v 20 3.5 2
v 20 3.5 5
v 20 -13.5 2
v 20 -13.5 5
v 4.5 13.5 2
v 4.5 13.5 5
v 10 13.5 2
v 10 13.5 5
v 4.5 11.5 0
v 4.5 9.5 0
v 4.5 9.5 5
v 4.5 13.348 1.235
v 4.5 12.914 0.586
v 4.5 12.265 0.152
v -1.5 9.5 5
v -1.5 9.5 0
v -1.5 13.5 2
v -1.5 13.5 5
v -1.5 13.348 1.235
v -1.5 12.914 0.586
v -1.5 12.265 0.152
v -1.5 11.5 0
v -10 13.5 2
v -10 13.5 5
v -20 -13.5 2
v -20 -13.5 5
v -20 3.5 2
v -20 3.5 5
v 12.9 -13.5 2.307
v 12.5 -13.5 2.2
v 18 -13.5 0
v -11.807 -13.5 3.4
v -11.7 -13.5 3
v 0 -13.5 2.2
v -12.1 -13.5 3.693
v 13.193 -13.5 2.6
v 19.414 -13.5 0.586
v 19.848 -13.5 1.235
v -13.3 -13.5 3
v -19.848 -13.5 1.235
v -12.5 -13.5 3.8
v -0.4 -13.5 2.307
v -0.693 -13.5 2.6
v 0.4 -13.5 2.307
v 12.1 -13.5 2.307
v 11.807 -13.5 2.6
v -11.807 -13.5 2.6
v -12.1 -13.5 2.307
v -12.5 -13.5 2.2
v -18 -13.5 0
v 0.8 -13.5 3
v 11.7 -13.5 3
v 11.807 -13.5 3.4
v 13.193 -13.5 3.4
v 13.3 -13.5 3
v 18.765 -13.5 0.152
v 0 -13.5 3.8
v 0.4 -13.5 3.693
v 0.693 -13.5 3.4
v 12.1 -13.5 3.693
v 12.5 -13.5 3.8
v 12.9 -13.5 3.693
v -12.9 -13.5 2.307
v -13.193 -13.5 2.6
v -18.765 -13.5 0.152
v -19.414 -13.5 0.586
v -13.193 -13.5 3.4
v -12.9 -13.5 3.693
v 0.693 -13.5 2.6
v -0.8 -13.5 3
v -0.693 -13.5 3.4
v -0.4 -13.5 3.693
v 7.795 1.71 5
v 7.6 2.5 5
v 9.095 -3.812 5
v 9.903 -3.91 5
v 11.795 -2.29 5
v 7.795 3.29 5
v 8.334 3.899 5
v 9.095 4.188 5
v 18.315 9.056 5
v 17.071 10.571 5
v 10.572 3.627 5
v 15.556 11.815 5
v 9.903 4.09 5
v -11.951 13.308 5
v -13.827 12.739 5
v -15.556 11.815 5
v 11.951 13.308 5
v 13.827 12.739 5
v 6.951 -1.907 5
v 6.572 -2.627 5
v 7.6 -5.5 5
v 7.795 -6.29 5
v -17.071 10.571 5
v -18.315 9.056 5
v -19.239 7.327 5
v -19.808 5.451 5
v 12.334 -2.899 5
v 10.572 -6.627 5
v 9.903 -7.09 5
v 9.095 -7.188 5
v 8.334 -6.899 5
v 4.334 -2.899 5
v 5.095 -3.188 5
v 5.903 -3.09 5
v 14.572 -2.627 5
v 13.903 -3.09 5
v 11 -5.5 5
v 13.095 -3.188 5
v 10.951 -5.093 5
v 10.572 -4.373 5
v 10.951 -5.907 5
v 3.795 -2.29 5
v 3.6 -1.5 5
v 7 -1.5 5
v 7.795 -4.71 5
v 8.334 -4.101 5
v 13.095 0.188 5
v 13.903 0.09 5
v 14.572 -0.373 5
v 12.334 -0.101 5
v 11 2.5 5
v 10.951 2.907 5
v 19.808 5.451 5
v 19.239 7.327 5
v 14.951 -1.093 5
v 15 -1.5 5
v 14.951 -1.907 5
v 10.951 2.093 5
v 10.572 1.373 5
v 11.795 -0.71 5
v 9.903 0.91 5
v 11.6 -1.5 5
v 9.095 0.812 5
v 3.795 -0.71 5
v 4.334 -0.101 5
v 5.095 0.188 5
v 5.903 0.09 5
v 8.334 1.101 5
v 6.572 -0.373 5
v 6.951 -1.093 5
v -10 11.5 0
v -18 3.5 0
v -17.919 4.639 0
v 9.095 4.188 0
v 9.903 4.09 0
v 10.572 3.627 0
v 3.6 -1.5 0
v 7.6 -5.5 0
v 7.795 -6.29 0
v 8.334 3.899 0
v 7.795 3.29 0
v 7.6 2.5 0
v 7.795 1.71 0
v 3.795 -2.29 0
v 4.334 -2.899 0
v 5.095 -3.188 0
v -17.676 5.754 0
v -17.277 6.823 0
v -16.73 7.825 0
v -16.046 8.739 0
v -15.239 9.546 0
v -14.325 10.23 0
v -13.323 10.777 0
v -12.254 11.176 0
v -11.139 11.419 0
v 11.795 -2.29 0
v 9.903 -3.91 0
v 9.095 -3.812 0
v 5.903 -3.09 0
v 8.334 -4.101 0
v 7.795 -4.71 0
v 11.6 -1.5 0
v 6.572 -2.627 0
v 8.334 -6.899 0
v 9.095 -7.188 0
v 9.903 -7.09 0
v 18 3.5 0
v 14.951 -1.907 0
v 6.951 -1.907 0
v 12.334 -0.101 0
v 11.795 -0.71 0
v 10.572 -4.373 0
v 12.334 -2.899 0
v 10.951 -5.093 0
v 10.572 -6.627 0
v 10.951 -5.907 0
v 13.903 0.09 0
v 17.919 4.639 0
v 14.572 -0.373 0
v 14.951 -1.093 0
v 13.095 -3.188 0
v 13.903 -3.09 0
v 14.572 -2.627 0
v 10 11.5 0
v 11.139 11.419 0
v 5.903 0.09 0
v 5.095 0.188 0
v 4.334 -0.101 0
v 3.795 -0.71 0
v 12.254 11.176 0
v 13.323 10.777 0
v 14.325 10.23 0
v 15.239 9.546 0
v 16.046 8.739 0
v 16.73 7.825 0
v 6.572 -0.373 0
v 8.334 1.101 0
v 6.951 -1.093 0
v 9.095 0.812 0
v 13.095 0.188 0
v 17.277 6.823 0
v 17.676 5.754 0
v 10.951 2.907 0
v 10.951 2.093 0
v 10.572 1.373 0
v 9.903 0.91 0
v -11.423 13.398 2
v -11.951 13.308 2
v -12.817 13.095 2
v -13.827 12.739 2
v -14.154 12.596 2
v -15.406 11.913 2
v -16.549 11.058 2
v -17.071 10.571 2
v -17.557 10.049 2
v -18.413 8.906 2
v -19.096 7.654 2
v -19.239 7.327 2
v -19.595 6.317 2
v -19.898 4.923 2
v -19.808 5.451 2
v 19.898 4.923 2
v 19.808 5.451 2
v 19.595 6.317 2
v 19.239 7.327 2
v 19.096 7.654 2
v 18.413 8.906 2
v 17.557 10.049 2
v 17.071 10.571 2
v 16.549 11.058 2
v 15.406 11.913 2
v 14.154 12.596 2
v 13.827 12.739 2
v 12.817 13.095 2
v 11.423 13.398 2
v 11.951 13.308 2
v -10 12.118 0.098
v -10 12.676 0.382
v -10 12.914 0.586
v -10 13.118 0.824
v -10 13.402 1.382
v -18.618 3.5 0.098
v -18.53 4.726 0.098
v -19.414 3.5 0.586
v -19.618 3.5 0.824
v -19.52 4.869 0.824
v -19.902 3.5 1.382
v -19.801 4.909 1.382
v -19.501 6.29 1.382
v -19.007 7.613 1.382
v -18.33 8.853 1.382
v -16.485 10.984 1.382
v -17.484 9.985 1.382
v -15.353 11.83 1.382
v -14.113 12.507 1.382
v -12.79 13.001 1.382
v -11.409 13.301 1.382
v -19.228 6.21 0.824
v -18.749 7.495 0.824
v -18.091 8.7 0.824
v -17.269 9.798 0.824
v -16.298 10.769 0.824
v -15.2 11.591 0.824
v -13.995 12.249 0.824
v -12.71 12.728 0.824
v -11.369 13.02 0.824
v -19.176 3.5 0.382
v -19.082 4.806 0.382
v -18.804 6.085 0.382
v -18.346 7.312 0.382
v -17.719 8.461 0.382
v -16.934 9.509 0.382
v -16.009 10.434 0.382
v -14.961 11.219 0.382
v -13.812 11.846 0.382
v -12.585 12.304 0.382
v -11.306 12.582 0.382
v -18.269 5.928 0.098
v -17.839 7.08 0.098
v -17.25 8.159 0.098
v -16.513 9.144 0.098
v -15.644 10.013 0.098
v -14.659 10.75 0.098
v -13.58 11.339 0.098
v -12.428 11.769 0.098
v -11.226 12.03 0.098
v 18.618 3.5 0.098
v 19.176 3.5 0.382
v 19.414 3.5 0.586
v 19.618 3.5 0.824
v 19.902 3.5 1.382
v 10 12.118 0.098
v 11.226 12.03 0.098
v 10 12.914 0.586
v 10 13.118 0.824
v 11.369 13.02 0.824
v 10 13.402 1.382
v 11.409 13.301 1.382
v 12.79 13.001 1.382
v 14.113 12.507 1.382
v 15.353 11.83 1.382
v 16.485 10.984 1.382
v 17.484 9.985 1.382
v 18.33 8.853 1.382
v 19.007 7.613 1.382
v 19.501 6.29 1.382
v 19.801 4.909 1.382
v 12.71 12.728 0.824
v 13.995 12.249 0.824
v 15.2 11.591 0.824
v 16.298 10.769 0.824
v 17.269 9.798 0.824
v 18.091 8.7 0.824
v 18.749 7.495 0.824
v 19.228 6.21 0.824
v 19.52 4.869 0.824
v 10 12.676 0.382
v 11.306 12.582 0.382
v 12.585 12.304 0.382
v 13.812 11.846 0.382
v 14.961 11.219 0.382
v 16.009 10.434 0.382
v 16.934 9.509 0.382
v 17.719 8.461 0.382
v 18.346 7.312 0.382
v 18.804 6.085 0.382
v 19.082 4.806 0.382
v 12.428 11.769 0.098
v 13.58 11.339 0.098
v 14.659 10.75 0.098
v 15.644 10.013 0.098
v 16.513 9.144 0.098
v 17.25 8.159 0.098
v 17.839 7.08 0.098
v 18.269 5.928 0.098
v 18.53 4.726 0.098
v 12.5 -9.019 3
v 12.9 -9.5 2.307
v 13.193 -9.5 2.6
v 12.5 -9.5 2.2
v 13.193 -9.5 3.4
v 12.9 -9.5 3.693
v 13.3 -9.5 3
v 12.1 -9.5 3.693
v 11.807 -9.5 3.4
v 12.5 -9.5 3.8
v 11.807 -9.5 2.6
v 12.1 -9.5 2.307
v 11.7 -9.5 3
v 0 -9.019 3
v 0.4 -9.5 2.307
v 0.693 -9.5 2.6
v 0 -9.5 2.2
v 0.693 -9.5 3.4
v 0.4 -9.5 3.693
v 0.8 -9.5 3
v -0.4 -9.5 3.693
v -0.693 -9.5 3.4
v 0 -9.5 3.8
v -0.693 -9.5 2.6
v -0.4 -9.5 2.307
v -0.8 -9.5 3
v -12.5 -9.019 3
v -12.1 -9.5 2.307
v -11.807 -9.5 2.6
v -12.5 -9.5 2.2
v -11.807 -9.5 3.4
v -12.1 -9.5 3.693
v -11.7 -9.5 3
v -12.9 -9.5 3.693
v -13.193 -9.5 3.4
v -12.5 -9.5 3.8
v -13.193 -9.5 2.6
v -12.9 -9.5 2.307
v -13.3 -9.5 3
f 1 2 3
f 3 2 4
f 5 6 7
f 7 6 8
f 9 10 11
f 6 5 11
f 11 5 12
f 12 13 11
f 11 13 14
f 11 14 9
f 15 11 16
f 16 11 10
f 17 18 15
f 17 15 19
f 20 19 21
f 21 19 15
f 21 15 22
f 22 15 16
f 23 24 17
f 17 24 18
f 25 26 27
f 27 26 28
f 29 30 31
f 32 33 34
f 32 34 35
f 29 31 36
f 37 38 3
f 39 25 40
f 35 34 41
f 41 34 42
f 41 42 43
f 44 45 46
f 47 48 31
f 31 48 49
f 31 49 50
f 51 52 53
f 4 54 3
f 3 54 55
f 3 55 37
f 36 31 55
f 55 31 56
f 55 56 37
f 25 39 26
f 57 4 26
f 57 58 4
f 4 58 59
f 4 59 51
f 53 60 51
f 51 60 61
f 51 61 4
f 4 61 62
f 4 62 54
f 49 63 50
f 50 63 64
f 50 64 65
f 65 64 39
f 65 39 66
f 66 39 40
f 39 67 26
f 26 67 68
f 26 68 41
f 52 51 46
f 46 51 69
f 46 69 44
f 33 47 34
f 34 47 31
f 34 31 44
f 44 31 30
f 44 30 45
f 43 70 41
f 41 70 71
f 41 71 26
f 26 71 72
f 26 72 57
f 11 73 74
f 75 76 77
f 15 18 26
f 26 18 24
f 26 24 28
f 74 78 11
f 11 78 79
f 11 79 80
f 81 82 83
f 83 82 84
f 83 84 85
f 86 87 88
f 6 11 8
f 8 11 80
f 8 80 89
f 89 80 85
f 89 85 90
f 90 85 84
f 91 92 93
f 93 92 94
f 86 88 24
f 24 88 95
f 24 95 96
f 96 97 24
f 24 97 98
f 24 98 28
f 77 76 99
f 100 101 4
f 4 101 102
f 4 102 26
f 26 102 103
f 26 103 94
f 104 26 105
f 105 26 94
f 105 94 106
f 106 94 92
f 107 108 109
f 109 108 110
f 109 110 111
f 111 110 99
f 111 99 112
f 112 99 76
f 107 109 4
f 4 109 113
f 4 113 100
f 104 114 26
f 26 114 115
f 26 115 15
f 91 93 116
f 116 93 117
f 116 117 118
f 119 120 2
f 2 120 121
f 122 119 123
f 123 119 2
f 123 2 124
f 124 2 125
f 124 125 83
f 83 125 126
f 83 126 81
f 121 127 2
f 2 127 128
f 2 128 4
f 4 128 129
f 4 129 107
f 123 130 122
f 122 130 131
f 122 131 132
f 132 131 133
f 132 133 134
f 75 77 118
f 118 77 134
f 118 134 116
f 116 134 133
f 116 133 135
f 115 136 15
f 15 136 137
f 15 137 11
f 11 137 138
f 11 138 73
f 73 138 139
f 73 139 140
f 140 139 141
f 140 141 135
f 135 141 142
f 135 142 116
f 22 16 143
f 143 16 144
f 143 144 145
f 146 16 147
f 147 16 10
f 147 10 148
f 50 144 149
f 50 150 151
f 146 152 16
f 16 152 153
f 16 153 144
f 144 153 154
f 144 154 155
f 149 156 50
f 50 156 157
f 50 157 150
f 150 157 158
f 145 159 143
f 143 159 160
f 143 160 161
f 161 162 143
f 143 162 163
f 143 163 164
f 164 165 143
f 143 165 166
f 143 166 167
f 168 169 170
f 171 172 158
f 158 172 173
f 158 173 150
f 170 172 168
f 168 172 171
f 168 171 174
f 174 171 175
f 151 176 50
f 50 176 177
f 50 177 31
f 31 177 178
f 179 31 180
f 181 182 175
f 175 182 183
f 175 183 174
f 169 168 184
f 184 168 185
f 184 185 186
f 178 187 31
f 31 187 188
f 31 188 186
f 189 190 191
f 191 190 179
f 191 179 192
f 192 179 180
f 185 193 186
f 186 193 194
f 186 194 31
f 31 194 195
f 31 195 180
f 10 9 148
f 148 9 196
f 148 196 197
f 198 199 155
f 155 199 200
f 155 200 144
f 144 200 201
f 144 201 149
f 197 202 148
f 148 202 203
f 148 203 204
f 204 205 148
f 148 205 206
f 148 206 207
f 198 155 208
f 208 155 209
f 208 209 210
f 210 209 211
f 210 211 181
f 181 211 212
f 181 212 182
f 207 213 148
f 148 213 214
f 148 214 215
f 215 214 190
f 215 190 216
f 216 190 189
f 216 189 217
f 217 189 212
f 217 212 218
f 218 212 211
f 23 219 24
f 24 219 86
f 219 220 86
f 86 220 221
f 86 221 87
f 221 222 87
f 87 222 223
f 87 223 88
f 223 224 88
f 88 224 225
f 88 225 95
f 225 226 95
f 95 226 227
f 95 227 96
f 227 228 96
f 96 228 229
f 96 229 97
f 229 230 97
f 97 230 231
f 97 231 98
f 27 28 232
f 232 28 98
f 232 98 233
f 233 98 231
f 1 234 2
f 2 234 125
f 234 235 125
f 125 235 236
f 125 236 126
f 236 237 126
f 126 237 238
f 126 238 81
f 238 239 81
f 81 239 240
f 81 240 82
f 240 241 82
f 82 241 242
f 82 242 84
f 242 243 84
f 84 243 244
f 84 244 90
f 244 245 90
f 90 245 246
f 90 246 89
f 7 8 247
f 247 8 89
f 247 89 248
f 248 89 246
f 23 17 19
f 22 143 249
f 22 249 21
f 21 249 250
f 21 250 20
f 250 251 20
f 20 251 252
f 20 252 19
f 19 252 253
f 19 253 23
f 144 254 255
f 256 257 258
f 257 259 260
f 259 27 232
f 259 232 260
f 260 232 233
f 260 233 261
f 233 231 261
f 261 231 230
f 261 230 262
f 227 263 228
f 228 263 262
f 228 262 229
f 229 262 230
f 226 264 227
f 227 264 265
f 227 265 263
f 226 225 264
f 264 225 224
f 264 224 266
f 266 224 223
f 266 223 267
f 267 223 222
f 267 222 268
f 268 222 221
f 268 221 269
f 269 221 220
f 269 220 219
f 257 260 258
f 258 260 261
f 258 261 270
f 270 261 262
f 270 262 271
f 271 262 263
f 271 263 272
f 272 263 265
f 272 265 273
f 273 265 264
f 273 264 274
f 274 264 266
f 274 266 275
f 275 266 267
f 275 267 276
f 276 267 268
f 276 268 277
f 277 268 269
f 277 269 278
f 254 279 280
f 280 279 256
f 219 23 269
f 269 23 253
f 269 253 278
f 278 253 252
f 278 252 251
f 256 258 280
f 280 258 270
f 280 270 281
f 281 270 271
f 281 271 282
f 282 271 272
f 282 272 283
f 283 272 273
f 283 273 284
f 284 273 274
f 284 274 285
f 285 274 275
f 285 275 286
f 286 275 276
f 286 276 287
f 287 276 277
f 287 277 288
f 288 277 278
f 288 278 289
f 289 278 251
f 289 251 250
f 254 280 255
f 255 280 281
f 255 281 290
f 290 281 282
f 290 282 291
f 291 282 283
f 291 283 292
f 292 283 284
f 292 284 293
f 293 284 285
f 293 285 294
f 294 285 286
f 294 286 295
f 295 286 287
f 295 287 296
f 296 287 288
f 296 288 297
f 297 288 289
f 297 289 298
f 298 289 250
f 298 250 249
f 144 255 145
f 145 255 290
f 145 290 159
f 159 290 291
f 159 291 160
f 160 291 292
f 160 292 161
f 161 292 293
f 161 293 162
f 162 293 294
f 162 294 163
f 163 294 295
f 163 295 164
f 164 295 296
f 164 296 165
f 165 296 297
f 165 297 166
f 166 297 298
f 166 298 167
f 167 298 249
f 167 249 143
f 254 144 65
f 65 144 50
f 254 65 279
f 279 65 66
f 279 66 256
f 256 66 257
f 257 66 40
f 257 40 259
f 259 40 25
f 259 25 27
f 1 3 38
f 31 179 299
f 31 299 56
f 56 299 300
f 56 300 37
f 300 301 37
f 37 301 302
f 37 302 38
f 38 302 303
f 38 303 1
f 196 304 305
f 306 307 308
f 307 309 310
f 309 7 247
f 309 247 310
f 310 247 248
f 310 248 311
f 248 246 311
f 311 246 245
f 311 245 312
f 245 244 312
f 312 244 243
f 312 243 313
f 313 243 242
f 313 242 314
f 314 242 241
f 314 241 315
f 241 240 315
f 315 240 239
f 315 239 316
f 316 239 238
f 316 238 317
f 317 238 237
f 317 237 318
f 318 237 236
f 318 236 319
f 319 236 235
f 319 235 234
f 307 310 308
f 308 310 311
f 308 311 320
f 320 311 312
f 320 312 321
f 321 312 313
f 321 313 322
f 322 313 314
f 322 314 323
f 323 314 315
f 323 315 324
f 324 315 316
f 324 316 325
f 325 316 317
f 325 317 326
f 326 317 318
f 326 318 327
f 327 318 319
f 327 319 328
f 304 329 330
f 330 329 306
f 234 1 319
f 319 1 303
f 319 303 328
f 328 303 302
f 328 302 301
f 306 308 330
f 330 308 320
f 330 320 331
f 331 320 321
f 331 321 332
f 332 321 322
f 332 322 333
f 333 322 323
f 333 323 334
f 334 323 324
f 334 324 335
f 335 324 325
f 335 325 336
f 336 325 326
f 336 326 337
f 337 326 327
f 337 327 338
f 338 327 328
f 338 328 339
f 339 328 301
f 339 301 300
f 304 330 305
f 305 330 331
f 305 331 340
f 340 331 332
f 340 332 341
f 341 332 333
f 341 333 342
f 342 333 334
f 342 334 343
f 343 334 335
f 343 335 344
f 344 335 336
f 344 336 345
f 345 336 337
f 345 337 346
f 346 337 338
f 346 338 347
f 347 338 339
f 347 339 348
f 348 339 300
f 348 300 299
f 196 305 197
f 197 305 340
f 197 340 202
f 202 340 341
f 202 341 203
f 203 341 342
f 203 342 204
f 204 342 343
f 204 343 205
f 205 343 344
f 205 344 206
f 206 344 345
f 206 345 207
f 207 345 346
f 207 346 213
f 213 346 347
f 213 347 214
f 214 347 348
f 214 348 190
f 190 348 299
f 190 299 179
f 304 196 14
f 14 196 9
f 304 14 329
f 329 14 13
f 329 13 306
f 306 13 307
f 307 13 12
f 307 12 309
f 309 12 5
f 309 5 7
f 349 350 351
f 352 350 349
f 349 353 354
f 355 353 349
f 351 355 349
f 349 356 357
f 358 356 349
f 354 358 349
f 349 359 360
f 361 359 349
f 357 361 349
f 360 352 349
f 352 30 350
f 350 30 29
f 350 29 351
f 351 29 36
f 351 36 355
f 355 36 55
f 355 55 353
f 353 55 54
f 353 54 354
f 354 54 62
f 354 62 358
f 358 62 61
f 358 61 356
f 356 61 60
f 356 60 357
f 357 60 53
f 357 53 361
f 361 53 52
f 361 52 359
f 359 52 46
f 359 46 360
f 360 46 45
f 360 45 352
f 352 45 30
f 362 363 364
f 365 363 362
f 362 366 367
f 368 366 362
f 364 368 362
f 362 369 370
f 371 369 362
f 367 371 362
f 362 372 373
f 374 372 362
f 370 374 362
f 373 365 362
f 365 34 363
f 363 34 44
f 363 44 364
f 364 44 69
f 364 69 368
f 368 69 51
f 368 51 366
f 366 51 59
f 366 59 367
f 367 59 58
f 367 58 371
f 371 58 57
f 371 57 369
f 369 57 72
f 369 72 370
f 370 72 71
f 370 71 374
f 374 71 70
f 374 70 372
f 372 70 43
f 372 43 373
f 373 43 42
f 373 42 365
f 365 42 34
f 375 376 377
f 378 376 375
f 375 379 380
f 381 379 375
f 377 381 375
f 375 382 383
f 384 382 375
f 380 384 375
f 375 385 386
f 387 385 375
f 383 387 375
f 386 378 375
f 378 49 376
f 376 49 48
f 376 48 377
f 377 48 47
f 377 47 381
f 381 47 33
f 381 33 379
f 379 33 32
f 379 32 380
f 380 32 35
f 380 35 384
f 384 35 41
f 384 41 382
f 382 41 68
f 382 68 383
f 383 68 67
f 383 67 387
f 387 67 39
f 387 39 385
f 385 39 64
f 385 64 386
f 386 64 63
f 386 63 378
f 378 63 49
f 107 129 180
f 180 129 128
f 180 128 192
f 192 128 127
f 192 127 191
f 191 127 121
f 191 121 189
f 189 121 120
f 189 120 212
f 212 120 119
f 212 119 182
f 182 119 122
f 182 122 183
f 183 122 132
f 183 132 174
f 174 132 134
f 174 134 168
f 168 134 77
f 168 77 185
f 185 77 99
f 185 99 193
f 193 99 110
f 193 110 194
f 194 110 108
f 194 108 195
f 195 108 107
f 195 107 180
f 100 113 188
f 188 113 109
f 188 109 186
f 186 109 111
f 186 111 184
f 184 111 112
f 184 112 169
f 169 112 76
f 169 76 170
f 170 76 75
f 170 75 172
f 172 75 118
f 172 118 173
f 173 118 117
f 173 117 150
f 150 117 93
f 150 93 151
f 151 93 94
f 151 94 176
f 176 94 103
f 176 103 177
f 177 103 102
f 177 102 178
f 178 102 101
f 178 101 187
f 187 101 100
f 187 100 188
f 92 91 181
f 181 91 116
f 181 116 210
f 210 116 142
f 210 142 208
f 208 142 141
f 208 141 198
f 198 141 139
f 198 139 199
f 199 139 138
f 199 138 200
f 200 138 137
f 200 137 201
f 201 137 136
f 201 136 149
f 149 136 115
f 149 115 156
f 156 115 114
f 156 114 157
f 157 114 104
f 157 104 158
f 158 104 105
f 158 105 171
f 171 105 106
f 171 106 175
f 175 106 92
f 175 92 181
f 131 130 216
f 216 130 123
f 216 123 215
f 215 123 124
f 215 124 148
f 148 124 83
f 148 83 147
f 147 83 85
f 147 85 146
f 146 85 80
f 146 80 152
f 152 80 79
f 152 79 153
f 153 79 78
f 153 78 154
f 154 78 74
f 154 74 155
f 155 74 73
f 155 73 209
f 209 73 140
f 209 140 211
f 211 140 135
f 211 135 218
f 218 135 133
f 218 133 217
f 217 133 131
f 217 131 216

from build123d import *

# Parameters (mm, degrees)
EXTRUDE_1_DEPTH        = 5
FILLET_1_R             = 10
FILLET_2_R             = 2
HOLE_WIZARD_M2_1_D     = 1.6
HOLE_WIZARD_M2_1_DEPTH = 4
HOLE_WIZARD_M2_1_TIP   = 0.480688495
HOLE_WIZARD_M3_1_D     = 3.4
HOLE_WIZARD_M3_1_DEPTH = 5.6
HOLE_WIZARD_M3_1_TIP   = 1.021463052


with BuildPart() as part:
    # 스케치1 → 보스-돌출1 (new body)
    with BuildSketch(Plane.XY):
        Polygon((-1.5, 13.5), (-1.5, 9.5), (4.5, 9.5), (4.5, 13.5), (20, 13.5), (20, -13.5), (-20, -13.5), (-20, 13.5), align=None)
    extrude(amount=EXTRUDE_1_DEPTH)

    # 필렛1
    fillet_1_edges = [part.edges().sort_by_distance(p)[0] for p in [
        (-20, 13.5, 2.5),
        (20, 13.5, 2.5),
    ]]
    fillet(fillet_1_edges, radius=FILLET_1_R)

    # 필렛2
    fillet_2_edges = [part.edges().sort_by_distance(p)[0] for p in [
        (20, -5, 0),
        (-20, -5, 0),
        (7.25, 13.5, 0),
        (17.071067812, 10.571067812, 0),
        (-17.071067812, 10.571067812, 0),
        (-5.75, 13.5, 0),
    ]]
    fillet(fillet_2_edges, radius=FILLET_2_R)

    # M2 나사 구멍1
    with Locations(Plane(origin=(0, -13.5, 0), x_dir=(-1, 0, 0), z_dir=(0, -1, 0))):
        with Locations((12.5, -3), (0, -3), (-12.5, -3)):
            Hole(HOLE_WIZARD_M2_1_D / 2, depth=HOLE_WIZARD_M2_1_DEPTH)
            with Locations((0, 0, -(HOLE_WIZARD_M2_1_DEPTH + HOLE_WIZARD_M2_1_TIP / 2))):  # 118° drill point
                Cone(0, HOLE_WIZARD_M2_1_D / 2, HOLE_WIZARD_M2_1_TIP, mode=Mode.SUBTRACT)

    # M3 여유 구멍1
    with Locations(Plane(origin=(0, 0, 0), x_dir=(-1, 0, 0), z_dir=(0, 0, -1))):
        with Locations((-13.3, -1.5), (-9.3, 2.5), (-5.3, -1.5), (-9.3, -5.5)):
            Hole(HOLE_WIZARD_M3_1_D / 2, depth=HOLE_WIZARD_M3_1_DEPTH)
            with Locations((0, 0, -(HOLE_WIZARD_M3_1_DEPTH + HOLE_WIZARD_M3_1_TIP / 2))):  # 118° drill point
                Cone(0, HOLE_WIZARD_M3_1_D / 2, HOLE_WIZARD_M3_1_TIP, mode=Mode.SUBTRACT)


solid = part.part
